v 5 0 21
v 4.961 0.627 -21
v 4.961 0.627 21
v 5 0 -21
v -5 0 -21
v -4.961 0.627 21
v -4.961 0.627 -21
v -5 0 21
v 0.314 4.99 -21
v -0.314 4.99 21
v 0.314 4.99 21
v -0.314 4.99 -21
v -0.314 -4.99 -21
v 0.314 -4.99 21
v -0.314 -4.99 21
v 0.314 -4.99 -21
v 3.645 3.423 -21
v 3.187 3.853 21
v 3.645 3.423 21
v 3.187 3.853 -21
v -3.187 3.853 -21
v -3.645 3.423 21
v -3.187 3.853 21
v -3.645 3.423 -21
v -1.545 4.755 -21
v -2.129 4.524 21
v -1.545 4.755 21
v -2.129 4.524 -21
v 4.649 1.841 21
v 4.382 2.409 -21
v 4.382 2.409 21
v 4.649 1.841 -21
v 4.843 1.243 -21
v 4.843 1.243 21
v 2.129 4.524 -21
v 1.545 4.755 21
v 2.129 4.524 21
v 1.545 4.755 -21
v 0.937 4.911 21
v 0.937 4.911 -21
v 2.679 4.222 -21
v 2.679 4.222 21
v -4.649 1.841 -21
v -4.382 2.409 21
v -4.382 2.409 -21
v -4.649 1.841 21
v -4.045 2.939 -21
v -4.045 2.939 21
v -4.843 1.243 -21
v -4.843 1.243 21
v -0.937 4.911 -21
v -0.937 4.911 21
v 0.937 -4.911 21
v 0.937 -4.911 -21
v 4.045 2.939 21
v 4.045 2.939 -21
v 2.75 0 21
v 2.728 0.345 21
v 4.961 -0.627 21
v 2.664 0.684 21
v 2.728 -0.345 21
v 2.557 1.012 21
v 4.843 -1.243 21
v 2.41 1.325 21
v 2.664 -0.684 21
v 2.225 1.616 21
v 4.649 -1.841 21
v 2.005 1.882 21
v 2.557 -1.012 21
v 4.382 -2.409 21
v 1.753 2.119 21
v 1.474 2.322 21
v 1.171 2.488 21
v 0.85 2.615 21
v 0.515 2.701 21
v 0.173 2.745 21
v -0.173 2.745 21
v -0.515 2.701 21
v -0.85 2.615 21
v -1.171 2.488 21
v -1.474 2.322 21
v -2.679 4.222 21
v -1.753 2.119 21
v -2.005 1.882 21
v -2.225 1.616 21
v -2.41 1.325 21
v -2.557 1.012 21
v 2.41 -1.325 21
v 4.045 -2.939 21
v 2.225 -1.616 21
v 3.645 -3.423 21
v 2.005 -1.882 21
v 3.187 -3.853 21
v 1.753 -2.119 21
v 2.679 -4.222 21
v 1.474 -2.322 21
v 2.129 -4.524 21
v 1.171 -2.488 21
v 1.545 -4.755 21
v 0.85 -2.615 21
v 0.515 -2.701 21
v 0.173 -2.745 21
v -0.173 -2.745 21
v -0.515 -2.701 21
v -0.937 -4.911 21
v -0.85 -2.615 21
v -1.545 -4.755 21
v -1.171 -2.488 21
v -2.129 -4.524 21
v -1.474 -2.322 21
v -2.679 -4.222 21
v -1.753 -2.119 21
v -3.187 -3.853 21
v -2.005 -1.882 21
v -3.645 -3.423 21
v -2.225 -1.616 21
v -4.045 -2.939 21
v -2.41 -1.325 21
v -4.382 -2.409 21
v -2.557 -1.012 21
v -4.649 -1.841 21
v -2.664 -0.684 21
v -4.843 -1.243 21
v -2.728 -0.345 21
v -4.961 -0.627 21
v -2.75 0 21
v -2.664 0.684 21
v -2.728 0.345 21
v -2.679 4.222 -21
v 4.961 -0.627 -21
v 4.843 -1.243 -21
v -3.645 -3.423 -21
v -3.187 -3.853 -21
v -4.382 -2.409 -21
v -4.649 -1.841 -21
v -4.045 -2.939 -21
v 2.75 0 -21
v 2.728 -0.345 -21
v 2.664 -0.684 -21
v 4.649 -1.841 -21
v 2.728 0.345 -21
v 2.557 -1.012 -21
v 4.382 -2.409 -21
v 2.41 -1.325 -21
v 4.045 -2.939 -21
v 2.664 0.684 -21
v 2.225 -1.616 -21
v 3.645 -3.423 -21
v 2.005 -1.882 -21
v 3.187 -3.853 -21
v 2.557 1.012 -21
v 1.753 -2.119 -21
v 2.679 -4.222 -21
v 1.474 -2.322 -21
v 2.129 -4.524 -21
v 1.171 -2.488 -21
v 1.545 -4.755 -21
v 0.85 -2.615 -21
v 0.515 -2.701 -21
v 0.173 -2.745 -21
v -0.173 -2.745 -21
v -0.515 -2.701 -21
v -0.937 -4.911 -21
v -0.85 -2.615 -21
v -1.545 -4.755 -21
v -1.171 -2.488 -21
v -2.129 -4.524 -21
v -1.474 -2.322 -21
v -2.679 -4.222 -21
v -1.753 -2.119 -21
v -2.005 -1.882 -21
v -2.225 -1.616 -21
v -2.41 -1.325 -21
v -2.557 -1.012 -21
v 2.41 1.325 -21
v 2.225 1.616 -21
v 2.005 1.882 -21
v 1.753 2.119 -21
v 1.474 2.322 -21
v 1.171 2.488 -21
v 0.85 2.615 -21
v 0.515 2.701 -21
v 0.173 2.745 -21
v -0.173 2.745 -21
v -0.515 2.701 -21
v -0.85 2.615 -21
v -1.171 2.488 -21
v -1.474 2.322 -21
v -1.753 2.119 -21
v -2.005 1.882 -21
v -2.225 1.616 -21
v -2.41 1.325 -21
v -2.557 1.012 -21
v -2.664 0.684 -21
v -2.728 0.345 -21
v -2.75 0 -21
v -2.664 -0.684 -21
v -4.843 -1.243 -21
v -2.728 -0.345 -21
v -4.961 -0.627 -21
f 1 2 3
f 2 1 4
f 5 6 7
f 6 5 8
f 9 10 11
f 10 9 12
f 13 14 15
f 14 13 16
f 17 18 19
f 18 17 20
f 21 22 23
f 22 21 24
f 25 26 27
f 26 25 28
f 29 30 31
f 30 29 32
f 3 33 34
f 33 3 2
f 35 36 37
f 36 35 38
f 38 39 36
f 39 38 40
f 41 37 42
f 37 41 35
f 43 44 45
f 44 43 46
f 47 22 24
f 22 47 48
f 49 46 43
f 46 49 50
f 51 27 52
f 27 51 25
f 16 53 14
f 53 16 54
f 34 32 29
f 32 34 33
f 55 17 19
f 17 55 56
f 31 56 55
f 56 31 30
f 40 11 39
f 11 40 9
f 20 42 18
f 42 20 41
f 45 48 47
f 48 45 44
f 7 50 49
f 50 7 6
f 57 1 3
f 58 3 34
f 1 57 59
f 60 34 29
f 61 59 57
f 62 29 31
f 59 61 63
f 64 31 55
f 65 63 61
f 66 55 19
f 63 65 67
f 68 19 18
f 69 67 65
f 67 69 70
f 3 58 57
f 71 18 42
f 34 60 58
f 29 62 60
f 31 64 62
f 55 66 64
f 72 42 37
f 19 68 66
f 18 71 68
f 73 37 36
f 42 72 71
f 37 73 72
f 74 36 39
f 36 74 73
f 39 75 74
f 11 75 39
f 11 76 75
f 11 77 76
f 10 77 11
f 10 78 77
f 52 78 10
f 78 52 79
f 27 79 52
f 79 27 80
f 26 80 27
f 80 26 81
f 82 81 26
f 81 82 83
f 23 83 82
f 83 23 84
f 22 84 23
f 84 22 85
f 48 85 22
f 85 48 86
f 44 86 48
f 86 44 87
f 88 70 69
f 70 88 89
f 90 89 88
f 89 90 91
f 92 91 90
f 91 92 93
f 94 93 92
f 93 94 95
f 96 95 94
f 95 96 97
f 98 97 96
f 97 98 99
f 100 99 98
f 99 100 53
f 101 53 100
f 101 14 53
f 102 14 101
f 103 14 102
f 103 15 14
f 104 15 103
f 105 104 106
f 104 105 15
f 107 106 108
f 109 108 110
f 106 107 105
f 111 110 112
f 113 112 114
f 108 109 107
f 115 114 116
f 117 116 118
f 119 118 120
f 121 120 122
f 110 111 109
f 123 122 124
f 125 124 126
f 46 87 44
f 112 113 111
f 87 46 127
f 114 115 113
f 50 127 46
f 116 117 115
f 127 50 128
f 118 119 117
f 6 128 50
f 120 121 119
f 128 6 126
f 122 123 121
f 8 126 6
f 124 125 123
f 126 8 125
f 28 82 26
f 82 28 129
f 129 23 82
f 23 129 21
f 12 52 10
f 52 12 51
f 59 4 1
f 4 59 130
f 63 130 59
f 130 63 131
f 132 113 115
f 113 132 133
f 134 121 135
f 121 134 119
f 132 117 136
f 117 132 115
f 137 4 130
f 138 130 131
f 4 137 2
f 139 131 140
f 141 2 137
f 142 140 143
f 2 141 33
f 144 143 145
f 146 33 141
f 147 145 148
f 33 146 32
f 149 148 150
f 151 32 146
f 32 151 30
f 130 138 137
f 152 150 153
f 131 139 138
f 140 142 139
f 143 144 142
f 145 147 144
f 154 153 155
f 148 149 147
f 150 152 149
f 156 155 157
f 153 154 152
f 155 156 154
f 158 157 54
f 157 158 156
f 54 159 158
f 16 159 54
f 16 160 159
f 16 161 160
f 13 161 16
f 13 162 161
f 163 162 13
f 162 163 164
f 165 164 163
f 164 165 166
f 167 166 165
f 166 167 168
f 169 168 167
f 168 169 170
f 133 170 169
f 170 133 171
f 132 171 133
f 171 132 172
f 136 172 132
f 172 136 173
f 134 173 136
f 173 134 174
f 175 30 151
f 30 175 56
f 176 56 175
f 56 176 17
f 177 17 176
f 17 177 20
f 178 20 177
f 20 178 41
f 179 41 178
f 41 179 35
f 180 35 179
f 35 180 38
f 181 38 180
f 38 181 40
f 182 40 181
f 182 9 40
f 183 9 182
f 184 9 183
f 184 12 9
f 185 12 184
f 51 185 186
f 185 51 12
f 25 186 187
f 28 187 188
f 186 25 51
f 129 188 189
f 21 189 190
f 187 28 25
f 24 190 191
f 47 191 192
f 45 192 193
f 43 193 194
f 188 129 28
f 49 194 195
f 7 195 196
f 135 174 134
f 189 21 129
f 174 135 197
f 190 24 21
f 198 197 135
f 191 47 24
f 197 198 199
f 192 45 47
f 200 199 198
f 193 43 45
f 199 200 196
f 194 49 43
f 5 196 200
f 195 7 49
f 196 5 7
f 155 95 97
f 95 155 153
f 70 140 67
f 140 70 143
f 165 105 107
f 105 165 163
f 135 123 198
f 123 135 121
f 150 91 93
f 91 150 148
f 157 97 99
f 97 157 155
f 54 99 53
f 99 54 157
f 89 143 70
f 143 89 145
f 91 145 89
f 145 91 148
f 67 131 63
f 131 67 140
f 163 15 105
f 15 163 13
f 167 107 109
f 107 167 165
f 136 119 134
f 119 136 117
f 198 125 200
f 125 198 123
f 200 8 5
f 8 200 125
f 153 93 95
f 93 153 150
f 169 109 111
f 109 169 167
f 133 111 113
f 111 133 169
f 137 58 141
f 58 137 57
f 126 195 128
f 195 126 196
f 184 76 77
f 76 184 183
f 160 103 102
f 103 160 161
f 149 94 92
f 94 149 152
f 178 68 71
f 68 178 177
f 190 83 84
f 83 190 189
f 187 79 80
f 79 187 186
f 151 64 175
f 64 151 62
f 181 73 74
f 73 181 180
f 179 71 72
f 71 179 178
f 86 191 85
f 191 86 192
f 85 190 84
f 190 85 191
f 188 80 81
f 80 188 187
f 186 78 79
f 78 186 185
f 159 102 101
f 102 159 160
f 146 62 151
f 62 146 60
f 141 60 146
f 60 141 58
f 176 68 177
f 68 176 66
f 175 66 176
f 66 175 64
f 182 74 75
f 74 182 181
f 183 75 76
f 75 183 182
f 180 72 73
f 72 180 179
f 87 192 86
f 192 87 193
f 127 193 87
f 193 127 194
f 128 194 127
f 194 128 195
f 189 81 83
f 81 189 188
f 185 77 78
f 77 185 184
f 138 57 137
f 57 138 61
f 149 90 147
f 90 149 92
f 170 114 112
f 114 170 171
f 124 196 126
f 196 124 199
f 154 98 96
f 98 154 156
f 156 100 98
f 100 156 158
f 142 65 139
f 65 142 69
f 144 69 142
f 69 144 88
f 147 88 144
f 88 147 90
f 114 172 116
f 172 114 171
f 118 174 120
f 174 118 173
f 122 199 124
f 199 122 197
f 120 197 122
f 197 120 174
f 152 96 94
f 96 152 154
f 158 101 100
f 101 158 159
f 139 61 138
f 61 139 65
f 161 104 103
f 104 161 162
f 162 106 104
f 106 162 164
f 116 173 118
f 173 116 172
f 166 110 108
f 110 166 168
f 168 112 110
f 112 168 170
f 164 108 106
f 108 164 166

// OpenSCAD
$fn = 50;


difference() {
	union() {
		translate(v = [0, 0, -21.0000000000]) {
			cylinder(h = 42, r = 5.0000000000);
		}
	}
	union() {
		translate(v = [0, 0, -100.0000000000]) {
			cylinder(h = 200, r = 2.7500000000);
		}
	}
}
